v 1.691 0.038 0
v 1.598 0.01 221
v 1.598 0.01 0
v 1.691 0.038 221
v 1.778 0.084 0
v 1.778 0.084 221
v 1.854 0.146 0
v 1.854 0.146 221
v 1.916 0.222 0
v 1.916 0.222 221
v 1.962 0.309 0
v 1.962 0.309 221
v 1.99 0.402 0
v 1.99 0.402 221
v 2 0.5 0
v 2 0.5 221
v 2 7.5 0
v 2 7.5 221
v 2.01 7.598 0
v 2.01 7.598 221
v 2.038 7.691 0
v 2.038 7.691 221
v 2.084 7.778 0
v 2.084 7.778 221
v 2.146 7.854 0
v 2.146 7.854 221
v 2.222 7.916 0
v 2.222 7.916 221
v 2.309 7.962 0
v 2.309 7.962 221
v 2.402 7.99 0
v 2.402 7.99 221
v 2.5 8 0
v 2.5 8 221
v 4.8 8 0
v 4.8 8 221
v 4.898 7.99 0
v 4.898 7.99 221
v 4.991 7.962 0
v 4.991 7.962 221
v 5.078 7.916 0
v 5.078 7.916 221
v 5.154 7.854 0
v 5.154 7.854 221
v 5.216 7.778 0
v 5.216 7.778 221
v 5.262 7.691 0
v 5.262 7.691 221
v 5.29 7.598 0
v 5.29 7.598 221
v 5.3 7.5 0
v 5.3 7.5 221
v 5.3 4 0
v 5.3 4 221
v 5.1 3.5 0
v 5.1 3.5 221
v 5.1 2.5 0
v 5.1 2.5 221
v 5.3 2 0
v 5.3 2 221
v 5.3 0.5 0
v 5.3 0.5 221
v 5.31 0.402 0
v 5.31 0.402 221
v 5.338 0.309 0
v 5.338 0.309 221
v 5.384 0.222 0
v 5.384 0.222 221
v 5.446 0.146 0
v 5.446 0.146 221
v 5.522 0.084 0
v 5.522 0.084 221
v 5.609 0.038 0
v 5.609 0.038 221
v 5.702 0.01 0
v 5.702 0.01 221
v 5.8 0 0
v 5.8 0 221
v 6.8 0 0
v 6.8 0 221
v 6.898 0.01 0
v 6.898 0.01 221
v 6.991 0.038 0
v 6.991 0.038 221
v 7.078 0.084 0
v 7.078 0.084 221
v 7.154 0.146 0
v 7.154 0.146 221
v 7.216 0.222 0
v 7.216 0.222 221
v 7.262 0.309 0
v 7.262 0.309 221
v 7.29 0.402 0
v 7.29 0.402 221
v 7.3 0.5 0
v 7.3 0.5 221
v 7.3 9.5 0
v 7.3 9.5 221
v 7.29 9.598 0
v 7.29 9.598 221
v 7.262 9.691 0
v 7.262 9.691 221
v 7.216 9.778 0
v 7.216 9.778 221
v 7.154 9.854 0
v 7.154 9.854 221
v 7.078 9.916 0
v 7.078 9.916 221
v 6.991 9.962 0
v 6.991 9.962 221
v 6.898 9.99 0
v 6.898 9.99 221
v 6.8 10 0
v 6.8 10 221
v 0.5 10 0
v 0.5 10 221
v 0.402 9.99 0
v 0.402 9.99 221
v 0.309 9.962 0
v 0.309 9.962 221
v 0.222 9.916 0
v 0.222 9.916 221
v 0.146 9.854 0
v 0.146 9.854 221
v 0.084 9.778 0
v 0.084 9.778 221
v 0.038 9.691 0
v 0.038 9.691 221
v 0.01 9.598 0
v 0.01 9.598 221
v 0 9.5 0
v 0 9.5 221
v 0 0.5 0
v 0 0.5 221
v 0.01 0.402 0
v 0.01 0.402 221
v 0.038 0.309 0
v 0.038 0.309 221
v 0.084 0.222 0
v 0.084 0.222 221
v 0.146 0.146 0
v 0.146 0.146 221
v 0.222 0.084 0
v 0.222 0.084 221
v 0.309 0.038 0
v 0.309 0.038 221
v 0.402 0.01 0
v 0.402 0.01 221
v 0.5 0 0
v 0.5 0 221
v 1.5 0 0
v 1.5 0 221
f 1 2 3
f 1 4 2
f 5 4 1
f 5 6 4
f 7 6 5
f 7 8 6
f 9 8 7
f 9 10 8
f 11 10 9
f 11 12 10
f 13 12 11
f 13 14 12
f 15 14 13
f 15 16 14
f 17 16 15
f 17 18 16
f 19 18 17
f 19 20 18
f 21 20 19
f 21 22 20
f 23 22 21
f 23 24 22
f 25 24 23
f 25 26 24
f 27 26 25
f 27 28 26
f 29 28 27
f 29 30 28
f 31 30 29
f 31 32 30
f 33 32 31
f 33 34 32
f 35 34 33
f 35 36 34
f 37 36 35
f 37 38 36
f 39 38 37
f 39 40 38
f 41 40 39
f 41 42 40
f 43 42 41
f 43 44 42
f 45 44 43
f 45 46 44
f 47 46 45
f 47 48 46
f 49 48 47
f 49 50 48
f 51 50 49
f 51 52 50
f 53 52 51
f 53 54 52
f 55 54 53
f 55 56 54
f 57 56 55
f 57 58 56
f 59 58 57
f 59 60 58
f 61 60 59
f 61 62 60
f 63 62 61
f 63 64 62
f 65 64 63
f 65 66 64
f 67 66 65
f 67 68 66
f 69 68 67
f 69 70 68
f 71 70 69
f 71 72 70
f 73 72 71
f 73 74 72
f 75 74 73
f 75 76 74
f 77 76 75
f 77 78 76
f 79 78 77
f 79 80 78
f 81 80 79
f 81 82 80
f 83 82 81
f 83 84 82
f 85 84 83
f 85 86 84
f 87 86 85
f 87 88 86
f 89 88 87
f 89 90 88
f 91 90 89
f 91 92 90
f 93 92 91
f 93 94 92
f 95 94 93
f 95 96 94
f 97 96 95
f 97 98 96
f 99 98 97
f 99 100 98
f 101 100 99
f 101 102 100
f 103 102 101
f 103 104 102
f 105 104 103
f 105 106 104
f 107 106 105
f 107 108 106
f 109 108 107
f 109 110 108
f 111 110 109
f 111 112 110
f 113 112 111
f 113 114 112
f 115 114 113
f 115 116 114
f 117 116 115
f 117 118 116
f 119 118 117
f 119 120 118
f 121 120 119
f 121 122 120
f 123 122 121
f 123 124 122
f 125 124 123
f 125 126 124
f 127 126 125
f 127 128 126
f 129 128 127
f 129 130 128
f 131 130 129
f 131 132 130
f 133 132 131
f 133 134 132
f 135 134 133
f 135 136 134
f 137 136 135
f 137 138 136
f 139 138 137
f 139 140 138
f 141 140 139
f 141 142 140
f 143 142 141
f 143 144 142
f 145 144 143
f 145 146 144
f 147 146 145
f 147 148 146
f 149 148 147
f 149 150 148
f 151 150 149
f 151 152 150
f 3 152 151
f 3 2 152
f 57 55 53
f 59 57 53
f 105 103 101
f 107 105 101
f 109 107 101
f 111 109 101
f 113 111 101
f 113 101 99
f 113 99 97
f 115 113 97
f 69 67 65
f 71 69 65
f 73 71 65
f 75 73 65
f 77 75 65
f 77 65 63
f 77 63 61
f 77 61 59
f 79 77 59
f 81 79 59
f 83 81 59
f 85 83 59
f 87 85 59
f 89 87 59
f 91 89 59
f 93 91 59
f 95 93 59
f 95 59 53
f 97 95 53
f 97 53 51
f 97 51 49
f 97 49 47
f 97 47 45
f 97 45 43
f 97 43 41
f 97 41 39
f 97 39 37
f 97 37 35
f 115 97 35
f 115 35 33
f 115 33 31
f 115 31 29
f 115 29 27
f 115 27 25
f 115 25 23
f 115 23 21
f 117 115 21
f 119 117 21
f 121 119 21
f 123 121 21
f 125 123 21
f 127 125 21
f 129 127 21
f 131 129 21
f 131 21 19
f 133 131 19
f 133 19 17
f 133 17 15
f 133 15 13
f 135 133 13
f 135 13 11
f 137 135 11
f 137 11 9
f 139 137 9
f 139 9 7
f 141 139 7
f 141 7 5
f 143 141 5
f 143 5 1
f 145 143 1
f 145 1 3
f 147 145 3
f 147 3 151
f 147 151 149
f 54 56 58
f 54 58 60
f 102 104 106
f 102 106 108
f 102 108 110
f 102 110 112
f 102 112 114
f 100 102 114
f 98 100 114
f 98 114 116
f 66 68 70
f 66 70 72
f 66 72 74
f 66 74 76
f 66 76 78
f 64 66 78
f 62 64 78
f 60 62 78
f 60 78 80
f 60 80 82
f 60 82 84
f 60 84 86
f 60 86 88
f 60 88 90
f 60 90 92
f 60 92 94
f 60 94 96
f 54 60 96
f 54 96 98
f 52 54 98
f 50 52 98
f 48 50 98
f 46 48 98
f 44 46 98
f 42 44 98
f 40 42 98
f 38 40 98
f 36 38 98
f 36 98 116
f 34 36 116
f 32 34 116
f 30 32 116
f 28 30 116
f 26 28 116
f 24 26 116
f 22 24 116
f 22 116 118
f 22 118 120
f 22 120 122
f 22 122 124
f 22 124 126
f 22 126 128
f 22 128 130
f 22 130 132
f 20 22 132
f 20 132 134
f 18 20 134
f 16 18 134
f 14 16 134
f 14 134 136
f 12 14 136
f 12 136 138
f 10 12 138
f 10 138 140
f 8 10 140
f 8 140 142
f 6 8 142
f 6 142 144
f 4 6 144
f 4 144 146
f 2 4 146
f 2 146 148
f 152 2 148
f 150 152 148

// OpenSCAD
// file: polyedge.scad
// Copyright (c) 2024 Robert Eisele ( https://raw.org ). All rights reserved.
// Licensed under the MIT license.

// https://raw.org/code/openscad-polygons-with-rounded-corners/


// Example: polyedge([ [x, y, t], ...]);
// The parameter t has the following options:
// = 0: If t is zero (or left out), the edge is becoming a normal sharp edge like in polygon()
// > 0: If t is positive, the edge will get a round corner with radius t
// < 0: If t is negative, the edge will get an inset of length -t from the original edge


function normalize (v) = v / norm(v);
function sgn(a, b) = sign(a[0] * b[1] - a[1] * b[0]);

module polyedge(pts, $fn=$fn) {

    polygon([for (L1 = [
        for (i = [1 : len(pts)])
        let(
            f = $fn == 0 ? 10 : $fn,
            A = pts[(i - 1)],
            B = pts[(i + 0) % len(pts)],
            C = pts[(i + 1) % len(pts)],

            r = B[2],
            S = [B[0], B[1]],
            a = normalize([A[0] - B[0], A[1] - B[1]]),
            b = normalize([C[0] - B[0], C[1] - B[1]]))

             (len(B) == 2 || B[2] == 0)
                ? [ S ]
                : (r < 0 
                    ? [ S - a * r, S - b * r ]
                    : [let(
                        w = r * sqrt(2 / (1 - a * b) - 1),
                        X = a * w,
                        Y = b * w,
                        M = (a + b) * (r / sqrt(1 - pow(a * b, 2))),
                        b1 = atan2(X[1] - M[1], X[0] - M[0]),
                        b2 = atan2(Y[1] - M[1], Y[0] - M[0]),
                        phi = sgn(a, b) * (sgn(a, b) * (b1 - b2) + 360) % 360,
                        segs = ceil(abs(phi) * f / 360)) 
                            for (j = [0 : segs]) 
                                B + M + [
                                    r * cos(b1 - j / segs * phi), 
                                    r * sin(b1 - j / segs * phi)]])]) for (L2 = L1) L2]); 
}
// main file
include <polyedge.scad>
// Parameters
channel_width  = 7.3;     // inner width
channel_height = 10;     // inner height
wall           = 2;     // wall thickness
length         = 221;    // extrusion length
radius         = 0.5;     // corner radius
$fn = 32;               // circle resolution

linear_extrude(length) {
               polyedge([[0,0,radius],[0,channel_height,radius],[channel_width,channel_height,radius],[channel_width,0,radius],[channel_width-wall,0,radius],[channel_width-wall,2],[channel_width-wall-0.2,2.5],[channel_width-wall-0.2,3.5],[channel_width-wall,4],[channel_width-wall,channel_height-wall,radius],[wall,channel_height-wall,radius],[wall,0,radius]]);
               
}
